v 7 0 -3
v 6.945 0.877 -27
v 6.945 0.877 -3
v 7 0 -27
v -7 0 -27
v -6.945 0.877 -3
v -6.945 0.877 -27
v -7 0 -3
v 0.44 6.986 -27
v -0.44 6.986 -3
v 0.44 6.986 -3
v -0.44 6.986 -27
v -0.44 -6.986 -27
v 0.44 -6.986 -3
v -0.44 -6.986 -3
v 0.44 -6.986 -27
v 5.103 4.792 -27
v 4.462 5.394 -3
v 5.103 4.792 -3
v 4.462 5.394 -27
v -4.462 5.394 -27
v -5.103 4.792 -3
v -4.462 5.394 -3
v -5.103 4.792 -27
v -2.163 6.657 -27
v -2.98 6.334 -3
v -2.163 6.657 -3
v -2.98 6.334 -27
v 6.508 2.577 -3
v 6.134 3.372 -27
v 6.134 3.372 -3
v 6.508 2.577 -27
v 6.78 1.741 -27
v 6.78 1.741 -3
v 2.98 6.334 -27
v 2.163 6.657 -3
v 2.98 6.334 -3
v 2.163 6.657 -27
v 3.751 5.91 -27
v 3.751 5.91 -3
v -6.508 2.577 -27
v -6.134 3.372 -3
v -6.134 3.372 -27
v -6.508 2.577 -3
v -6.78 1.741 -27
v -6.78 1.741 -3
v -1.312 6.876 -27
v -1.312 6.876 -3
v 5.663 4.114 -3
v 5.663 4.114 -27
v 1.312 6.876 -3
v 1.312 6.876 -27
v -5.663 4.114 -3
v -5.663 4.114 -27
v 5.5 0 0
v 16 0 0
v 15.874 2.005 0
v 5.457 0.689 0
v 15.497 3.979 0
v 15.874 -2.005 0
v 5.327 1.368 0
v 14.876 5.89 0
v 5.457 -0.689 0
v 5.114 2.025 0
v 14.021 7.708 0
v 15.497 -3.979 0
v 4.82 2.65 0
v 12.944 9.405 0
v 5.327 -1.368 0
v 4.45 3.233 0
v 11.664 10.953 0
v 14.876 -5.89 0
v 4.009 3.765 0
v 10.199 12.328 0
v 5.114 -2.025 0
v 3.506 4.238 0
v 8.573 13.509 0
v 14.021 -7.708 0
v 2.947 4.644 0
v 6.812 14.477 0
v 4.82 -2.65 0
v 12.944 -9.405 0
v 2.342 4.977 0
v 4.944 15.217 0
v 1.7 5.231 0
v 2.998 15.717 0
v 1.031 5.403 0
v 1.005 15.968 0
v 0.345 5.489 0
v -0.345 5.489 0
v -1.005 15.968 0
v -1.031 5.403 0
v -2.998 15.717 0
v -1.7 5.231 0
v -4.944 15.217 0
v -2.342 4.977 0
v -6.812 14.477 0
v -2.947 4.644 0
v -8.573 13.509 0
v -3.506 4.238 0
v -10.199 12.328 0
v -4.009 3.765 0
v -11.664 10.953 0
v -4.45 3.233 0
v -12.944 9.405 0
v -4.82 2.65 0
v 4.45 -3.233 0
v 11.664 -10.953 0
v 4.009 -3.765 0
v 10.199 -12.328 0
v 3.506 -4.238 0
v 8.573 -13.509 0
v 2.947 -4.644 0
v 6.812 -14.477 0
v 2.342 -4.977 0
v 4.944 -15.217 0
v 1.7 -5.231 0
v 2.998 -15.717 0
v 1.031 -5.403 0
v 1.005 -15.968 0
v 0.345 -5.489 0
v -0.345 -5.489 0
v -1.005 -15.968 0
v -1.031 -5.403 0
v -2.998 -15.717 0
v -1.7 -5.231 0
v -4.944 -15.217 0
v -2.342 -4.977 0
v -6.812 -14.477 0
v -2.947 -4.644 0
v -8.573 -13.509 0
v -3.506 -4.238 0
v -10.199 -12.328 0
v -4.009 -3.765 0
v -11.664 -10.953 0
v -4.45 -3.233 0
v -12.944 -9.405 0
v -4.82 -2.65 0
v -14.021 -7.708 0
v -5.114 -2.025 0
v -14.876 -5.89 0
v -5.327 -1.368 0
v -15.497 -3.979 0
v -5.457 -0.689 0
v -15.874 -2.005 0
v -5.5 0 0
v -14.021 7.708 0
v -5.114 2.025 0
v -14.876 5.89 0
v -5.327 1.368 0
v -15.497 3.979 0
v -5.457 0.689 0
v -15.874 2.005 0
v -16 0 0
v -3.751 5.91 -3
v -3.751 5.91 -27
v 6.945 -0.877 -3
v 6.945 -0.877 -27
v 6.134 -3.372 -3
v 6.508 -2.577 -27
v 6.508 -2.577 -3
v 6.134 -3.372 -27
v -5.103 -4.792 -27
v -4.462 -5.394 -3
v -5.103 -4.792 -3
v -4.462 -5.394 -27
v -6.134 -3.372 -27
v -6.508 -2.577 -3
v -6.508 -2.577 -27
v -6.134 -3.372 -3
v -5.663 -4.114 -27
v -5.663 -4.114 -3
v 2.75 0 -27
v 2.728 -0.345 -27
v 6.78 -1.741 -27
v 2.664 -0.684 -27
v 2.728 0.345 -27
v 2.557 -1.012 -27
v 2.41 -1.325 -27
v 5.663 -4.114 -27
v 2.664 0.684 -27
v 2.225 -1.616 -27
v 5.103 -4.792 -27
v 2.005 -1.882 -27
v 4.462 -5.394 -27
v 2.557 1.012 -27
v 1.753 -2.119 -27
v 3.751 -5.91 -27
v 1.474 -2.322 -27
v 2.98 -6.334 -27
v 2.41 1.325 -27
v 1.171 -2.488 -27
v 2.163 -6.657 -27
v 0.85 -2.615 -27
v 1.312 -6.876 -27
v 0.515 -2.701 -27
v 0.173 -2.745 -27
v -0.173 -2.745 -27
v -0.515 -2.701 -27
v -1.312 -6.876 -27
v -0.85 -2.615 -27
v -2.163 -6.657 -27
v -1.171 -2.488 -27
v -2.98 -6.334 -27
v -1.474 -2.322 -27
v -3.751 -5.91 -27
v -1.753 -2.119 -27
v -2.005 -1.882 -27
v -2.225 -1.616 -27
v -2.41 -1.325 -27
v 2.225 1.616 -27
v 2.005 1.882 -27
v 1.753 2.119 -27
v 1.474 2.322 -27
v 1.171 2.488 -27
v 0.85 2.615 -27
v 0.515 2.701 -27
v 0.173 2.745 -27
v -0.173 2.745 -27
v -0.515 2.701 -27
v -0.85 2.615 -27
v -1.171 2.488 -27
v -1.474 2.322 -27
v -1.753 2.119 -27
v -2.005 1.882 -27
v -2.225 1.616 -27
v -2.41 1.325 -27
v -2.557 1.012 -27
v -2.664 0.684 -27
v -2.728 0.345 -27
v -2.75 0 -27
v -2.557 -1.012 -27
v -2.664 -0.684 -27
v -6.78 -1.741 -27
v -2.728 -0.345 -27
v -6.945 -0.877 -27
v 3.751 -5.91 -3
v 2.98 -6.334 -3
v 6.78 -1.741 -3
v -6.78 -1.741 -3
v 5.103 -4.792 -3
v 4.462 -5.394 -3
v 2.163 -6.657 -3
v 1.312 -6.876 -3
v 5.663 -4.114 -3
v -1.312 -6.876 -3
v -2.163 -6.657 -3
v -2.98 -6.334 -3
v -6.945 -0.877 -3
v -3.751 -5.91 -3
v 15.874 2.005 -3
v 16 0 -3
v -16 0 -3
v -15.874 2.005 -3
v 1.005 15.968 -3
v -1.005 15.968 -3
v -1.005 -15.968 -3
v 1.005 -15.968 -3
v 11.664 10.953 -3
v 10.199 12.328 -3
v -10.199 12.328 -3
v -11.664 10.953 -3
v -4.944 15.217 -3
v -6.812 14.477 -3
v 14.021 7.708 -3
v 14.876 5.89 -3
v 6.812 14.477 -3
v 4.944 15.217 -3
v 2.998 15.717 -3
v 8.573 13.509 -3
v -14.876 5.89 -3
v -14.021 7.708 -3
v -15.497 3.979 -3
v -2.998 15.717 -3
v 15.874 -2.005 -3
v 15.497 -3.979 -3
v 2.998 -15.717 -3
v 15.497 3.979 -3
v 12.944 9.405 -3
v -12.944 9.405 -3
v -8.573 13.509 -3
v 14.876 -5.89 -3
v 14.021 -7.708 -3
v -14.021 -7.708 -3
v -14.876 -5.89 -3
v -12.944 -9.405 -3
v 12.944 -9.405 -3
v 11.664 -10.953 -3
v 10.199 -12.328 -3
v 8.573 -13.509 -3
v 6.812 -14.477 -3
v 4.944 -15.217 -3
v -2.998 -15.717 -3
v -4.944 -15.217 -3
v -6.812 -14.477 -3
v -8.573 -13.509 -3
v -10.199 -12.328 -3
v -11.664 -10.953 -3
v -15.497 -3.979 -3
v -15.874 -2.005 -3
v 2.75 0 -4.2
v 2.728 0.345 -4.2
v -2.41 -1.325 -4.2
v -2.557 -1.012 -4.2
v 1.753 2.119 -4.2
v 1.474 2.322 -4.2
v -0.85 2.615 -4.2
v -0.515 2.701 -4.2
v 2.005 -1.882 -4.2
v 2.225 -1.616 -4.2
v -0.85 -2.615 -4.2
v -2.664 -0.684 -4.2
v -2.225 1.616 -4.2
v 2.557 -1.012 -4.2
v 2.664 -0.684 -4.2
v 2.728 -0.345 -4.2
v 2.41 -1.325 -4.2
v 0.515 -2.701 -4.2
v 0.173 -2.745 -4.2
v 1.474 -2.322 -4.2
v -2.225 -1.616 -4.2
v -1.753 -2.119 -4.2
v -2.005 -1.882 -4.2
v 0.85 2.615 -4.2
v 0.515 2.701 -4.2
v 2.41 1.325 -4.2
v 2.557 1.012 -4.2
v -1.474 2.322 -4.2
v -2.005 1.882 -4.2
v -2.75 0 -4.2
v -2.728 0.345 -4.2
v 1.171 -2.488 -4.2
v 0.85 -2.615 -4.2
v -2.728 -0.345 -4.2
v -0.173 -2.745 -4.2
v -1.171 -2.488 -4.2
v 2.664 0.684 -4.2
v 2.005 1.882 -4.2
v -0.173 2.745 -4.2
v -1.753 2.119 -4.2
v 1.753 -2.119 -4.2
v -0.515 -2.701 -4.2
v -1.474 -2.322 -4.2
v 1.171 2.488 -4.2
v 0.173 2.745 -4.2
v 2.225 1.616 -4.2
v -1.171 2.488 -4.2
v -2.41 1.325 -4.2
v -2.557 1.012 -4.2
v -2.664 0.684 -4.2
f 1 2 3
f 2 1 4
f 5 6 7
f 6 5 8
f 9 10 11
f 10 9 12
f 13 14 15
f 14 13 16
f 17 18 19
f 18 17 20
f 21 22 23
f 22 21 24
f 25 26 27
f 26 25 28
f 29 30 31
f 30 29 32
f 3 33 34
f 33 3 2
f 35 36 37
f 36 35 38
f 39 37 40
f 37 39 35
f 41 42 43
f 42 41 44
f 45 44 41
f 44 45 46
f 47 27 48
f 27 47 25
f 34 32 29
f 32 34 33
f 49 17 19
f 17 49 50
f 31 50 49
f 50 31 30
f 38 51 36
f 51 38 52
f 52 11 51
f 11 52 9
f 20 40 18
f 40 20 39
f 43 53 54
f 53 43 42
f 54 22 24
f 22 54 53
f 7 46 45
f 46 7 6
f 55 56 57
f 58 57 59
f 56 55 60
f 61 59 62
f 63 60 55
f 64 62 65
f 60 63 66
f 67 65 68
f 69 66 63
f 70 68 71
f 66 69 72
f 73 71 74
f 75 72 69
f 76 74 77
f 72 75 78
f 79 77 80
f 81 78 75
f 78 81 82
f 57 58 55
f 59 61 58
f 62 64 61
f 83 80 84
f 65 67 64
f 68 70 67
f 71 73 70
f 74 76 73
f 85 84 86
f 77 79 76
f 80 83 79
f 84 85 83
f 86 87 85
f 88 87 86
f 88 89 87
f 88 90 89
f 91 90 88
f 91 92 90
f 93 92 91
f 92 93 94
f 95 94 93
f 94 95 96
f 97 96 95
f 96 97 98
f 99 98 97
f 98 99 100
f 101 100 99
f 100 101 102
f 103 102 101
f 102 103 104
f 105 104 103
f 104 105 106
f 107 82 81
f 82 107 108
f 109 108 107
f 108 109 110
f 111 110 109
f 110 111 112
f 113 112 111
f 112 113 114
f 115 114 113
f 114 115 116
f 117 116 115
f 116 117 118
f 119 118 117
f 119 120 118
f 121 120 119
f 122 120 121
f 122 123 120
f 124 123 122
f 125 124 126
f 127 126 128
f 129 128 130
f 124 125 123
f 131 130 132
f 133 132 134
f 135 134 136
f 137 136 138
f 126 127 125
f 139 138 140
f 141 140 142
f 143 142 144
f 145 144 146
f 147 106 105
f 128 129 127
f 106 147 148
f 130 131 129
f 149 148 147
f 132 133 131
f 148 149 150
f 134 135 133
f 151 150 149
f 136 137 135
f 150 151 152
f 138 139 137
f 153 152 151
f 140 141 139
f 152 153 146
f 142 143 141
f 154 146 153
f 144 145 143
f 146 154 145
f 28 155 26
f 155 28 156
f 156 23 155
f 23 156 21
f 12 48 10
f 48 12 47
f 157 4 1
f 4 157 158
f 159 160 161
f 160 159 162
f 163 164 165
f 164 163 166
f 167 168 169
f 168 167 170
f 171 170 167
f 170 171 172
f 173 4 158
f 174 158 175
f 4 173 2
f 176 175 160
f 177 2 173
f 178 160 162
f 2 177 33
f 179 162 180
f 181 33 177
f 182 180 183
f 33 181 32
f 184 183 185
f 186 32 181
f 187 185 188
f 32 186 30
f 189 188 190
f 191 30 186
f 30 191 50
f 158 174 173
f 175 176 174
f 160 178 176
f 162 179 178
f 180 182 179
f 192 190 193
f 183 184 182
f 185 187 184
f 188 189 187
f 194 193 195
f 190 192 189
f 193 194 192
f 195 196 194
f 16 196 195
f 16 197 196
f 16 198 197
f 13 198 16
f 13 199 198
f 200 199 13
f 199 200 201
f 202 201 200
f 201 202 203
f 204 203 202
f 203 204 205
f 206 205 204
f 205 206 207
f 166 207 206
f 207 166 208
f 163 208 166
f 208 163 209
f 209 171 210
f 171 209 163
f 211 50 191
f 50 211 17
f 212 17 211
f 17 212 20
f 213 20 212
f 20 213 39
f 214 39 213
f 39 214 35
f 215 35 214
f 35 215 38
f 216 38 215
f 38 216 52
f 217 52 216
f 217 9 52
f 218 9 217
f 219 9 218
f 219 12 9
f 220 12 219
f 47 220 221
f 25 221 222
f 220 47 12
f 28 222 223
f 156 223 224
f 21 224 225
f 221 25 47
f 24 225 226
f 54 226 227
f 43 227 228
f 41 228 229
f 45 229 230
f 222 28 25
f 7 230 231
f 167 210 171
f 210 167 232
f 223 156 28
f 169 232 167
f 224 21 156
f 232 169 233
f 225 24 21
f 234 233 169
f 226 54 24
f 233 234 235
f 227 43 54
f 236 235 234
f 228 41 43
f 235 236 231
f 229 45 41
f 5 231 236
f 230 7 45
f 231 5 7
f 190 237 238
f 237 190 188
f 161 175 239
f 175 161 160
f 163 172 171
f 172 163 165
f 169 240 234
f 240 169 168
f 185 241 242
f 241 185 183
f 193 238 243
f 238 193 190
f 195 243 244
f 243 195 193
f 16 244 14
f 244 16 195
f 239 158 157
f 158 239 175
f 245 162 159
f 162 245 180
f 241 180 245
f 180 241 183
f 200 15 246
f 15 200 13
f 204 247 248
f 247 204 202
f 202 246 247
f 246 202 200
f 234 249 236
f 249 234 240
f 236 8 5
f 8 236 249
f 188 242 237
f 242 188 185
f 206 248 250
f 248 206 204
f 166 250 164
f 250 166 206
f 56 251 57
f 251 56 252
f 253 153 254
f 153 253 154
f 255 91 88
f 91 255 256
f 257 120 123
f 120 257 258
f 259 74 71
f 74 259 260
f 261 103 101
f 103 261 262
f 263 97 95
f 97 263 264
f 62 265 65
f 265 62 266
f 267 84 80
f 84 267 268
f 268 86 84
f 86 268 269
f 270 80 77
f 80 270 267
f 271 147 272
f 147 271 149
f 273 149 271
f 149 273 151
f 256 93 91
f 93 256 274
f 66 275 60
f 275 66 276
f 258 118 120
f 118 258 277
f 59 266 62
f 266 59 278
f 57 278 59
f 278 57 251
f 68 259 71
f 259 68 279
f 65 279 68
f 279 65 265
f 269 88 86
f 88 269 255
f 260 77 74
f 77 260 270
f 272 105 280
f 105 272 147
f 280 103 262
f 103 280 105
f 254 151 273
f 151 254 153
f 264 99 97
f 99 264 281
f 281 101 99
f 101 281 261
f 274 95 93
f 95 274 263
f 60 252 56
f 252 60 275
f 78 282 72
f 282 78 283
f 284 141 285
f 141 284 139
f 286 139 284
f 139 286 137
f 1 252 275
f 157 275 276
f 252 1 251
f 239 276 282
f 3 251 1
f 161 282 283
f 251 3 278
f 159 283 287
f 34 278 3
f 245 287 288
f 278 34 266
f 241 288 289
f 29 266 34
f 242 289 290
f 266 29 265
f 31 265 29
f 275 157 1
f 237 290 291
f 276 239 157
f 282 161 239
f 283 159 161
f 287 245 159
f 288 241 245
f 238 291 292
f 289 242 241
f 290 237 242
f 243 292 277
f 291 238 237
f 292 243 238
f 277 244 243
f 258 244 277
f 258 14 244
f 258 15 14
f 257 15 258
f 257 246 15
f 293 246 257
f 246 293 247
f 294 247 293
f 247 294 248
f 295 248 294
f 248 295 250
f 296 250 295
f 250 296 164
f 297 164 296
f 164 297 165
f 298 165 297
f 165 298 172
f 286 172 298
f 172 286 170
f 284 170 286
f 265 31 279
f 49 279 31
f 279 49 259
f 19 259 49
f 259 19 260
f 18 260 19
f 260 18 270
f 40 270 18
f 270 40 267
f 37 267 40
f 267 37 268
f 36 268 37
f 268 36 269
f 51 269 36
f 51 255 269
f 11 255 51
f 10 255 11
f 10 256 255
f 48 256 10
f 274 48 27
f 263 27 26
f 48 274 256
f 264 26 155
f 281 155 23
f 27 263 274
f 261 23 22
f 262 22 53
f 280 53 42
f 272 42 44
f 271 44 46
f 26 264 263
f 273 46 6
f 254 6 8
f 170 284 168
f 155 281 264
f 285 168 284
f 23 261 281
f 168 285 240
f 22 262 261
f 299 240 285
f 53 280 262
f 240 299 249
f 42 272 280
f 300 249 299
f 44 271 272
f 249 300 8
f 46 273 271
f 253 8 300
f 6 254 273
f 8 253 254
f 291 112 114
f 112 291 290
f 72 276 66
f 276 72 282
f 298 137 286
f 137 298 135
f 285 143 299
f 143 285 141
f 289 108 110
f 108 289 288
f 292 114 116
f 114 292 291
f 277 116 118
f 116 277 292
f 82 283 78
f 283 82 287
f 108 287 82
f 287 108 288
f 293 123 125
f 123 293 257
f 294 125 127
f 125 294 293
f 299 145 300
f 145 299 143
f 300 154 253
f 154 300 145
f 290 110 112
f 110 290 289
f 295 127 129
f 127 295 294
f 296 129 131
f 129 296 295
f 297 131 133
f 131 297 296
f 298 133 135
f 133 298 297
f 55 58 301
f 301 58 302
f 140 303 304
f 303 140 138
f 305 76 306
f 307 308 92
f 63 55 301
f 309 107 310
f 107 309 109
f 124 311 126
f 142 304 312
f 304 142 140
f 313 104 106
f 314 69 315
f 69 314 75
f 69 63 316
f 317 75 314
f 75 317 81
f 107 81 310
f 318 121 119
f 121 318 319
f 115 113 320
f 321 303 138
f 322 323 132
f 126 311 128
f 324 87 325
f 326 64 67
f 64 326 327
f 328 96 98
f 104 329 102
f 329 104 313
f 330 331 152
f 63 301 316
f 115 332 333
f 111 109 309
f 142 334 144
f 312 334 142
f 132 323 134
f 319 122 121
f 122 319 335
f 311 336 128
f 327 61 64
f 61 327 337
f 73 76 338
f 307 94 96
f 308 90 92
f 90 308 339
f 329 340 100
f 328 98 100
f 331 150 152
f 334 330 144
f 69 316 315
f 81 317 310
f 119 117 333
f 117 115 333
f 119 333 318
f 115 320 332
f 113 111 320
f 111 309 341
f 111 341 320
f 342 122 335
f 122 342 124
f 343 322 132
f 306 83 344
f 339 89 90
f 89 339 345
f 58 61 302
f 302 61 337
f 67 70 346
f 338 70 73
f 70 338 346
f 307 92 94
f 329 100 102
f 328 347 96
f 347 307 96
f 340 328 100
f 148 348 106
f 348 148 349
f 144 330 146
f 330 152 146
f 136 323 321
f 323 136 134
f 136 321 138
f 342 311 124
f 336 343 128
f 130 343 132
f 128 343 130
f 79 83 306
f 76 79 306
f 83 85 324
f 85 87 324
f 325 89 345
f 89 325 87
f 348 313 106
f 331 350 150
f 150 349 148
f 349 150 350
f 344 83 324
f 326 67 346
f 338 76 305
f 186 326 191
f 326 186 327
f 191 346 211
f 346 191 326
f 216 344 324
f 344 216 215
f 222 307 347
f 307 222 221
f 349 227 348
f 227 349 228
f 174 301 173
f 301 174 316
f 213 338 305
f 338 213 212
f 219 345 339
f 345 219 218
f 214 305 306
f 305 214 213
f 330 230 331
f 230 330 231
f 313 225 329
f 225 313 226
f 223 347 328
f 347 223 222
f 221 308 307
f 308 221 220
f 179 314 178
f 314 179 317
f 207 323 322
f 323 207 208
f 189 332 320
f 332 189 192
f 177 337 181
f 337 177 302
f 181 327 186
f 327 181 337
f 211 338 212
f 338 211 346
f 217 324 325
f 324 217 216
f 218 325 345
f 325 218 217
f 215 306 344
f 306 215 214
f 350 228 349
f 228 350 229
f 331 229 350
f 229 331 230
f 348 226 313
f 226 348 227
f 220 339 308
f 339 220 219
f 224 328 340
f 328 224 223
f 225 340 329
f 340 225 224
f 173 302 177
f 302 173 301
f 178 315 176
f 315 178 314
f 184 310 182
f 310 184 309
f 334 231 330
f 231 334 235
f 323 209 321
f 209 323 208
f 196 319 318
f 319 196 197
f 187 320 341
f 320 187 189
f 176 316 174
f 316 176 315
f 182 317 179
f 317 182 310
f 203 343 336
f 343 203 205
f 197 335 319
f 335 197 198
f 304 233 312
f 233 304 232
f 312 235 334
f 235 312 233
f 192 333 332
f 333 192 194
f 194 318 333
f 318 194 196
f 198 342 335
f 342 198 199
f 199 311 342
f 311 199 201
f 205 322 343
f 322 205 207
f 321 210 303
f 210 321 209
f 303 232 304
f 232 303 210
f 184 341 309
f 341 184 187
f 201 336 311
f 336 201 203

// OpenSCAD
$fn = 50;


difference() {
	union() {
		translate(v = [0, 0, -27.0000000000]) {
			cylinder(h = 27, r = 7.0000000000);
		}
		translate(v = [0, 0, -3.0000000000]) {
			cylinder(h = 3, r = 16.0000000000);
		}
	}
	union() {
		translate(v = [0, 0, 0]) {
			rotate(a = [0, 0, 0]) {
				difference() {
					union() {
						#translate(v = [0, 0, -27.0000000000]) {
							cylinder(h = 27, r = 2.2500000000);
						}
						#translate(v = [0, 0, -4.2000000000]) {
							cylinder(h = 4.2000000000, r = 7.0000000000, r1 = 2.7500000000, r2 = 5.5000000000);
						}
						#translate(v = [0, 0, -27.0000000000]) {
							cylinder(h = 27, r = 2.7500000000);
						}
						#translate(v = [0, 0, -27.0000000000]) {
							cylinder(h = 27, r = 2.2500000000);
						}
					}
					union();
				}
			}
		}
	}
}
